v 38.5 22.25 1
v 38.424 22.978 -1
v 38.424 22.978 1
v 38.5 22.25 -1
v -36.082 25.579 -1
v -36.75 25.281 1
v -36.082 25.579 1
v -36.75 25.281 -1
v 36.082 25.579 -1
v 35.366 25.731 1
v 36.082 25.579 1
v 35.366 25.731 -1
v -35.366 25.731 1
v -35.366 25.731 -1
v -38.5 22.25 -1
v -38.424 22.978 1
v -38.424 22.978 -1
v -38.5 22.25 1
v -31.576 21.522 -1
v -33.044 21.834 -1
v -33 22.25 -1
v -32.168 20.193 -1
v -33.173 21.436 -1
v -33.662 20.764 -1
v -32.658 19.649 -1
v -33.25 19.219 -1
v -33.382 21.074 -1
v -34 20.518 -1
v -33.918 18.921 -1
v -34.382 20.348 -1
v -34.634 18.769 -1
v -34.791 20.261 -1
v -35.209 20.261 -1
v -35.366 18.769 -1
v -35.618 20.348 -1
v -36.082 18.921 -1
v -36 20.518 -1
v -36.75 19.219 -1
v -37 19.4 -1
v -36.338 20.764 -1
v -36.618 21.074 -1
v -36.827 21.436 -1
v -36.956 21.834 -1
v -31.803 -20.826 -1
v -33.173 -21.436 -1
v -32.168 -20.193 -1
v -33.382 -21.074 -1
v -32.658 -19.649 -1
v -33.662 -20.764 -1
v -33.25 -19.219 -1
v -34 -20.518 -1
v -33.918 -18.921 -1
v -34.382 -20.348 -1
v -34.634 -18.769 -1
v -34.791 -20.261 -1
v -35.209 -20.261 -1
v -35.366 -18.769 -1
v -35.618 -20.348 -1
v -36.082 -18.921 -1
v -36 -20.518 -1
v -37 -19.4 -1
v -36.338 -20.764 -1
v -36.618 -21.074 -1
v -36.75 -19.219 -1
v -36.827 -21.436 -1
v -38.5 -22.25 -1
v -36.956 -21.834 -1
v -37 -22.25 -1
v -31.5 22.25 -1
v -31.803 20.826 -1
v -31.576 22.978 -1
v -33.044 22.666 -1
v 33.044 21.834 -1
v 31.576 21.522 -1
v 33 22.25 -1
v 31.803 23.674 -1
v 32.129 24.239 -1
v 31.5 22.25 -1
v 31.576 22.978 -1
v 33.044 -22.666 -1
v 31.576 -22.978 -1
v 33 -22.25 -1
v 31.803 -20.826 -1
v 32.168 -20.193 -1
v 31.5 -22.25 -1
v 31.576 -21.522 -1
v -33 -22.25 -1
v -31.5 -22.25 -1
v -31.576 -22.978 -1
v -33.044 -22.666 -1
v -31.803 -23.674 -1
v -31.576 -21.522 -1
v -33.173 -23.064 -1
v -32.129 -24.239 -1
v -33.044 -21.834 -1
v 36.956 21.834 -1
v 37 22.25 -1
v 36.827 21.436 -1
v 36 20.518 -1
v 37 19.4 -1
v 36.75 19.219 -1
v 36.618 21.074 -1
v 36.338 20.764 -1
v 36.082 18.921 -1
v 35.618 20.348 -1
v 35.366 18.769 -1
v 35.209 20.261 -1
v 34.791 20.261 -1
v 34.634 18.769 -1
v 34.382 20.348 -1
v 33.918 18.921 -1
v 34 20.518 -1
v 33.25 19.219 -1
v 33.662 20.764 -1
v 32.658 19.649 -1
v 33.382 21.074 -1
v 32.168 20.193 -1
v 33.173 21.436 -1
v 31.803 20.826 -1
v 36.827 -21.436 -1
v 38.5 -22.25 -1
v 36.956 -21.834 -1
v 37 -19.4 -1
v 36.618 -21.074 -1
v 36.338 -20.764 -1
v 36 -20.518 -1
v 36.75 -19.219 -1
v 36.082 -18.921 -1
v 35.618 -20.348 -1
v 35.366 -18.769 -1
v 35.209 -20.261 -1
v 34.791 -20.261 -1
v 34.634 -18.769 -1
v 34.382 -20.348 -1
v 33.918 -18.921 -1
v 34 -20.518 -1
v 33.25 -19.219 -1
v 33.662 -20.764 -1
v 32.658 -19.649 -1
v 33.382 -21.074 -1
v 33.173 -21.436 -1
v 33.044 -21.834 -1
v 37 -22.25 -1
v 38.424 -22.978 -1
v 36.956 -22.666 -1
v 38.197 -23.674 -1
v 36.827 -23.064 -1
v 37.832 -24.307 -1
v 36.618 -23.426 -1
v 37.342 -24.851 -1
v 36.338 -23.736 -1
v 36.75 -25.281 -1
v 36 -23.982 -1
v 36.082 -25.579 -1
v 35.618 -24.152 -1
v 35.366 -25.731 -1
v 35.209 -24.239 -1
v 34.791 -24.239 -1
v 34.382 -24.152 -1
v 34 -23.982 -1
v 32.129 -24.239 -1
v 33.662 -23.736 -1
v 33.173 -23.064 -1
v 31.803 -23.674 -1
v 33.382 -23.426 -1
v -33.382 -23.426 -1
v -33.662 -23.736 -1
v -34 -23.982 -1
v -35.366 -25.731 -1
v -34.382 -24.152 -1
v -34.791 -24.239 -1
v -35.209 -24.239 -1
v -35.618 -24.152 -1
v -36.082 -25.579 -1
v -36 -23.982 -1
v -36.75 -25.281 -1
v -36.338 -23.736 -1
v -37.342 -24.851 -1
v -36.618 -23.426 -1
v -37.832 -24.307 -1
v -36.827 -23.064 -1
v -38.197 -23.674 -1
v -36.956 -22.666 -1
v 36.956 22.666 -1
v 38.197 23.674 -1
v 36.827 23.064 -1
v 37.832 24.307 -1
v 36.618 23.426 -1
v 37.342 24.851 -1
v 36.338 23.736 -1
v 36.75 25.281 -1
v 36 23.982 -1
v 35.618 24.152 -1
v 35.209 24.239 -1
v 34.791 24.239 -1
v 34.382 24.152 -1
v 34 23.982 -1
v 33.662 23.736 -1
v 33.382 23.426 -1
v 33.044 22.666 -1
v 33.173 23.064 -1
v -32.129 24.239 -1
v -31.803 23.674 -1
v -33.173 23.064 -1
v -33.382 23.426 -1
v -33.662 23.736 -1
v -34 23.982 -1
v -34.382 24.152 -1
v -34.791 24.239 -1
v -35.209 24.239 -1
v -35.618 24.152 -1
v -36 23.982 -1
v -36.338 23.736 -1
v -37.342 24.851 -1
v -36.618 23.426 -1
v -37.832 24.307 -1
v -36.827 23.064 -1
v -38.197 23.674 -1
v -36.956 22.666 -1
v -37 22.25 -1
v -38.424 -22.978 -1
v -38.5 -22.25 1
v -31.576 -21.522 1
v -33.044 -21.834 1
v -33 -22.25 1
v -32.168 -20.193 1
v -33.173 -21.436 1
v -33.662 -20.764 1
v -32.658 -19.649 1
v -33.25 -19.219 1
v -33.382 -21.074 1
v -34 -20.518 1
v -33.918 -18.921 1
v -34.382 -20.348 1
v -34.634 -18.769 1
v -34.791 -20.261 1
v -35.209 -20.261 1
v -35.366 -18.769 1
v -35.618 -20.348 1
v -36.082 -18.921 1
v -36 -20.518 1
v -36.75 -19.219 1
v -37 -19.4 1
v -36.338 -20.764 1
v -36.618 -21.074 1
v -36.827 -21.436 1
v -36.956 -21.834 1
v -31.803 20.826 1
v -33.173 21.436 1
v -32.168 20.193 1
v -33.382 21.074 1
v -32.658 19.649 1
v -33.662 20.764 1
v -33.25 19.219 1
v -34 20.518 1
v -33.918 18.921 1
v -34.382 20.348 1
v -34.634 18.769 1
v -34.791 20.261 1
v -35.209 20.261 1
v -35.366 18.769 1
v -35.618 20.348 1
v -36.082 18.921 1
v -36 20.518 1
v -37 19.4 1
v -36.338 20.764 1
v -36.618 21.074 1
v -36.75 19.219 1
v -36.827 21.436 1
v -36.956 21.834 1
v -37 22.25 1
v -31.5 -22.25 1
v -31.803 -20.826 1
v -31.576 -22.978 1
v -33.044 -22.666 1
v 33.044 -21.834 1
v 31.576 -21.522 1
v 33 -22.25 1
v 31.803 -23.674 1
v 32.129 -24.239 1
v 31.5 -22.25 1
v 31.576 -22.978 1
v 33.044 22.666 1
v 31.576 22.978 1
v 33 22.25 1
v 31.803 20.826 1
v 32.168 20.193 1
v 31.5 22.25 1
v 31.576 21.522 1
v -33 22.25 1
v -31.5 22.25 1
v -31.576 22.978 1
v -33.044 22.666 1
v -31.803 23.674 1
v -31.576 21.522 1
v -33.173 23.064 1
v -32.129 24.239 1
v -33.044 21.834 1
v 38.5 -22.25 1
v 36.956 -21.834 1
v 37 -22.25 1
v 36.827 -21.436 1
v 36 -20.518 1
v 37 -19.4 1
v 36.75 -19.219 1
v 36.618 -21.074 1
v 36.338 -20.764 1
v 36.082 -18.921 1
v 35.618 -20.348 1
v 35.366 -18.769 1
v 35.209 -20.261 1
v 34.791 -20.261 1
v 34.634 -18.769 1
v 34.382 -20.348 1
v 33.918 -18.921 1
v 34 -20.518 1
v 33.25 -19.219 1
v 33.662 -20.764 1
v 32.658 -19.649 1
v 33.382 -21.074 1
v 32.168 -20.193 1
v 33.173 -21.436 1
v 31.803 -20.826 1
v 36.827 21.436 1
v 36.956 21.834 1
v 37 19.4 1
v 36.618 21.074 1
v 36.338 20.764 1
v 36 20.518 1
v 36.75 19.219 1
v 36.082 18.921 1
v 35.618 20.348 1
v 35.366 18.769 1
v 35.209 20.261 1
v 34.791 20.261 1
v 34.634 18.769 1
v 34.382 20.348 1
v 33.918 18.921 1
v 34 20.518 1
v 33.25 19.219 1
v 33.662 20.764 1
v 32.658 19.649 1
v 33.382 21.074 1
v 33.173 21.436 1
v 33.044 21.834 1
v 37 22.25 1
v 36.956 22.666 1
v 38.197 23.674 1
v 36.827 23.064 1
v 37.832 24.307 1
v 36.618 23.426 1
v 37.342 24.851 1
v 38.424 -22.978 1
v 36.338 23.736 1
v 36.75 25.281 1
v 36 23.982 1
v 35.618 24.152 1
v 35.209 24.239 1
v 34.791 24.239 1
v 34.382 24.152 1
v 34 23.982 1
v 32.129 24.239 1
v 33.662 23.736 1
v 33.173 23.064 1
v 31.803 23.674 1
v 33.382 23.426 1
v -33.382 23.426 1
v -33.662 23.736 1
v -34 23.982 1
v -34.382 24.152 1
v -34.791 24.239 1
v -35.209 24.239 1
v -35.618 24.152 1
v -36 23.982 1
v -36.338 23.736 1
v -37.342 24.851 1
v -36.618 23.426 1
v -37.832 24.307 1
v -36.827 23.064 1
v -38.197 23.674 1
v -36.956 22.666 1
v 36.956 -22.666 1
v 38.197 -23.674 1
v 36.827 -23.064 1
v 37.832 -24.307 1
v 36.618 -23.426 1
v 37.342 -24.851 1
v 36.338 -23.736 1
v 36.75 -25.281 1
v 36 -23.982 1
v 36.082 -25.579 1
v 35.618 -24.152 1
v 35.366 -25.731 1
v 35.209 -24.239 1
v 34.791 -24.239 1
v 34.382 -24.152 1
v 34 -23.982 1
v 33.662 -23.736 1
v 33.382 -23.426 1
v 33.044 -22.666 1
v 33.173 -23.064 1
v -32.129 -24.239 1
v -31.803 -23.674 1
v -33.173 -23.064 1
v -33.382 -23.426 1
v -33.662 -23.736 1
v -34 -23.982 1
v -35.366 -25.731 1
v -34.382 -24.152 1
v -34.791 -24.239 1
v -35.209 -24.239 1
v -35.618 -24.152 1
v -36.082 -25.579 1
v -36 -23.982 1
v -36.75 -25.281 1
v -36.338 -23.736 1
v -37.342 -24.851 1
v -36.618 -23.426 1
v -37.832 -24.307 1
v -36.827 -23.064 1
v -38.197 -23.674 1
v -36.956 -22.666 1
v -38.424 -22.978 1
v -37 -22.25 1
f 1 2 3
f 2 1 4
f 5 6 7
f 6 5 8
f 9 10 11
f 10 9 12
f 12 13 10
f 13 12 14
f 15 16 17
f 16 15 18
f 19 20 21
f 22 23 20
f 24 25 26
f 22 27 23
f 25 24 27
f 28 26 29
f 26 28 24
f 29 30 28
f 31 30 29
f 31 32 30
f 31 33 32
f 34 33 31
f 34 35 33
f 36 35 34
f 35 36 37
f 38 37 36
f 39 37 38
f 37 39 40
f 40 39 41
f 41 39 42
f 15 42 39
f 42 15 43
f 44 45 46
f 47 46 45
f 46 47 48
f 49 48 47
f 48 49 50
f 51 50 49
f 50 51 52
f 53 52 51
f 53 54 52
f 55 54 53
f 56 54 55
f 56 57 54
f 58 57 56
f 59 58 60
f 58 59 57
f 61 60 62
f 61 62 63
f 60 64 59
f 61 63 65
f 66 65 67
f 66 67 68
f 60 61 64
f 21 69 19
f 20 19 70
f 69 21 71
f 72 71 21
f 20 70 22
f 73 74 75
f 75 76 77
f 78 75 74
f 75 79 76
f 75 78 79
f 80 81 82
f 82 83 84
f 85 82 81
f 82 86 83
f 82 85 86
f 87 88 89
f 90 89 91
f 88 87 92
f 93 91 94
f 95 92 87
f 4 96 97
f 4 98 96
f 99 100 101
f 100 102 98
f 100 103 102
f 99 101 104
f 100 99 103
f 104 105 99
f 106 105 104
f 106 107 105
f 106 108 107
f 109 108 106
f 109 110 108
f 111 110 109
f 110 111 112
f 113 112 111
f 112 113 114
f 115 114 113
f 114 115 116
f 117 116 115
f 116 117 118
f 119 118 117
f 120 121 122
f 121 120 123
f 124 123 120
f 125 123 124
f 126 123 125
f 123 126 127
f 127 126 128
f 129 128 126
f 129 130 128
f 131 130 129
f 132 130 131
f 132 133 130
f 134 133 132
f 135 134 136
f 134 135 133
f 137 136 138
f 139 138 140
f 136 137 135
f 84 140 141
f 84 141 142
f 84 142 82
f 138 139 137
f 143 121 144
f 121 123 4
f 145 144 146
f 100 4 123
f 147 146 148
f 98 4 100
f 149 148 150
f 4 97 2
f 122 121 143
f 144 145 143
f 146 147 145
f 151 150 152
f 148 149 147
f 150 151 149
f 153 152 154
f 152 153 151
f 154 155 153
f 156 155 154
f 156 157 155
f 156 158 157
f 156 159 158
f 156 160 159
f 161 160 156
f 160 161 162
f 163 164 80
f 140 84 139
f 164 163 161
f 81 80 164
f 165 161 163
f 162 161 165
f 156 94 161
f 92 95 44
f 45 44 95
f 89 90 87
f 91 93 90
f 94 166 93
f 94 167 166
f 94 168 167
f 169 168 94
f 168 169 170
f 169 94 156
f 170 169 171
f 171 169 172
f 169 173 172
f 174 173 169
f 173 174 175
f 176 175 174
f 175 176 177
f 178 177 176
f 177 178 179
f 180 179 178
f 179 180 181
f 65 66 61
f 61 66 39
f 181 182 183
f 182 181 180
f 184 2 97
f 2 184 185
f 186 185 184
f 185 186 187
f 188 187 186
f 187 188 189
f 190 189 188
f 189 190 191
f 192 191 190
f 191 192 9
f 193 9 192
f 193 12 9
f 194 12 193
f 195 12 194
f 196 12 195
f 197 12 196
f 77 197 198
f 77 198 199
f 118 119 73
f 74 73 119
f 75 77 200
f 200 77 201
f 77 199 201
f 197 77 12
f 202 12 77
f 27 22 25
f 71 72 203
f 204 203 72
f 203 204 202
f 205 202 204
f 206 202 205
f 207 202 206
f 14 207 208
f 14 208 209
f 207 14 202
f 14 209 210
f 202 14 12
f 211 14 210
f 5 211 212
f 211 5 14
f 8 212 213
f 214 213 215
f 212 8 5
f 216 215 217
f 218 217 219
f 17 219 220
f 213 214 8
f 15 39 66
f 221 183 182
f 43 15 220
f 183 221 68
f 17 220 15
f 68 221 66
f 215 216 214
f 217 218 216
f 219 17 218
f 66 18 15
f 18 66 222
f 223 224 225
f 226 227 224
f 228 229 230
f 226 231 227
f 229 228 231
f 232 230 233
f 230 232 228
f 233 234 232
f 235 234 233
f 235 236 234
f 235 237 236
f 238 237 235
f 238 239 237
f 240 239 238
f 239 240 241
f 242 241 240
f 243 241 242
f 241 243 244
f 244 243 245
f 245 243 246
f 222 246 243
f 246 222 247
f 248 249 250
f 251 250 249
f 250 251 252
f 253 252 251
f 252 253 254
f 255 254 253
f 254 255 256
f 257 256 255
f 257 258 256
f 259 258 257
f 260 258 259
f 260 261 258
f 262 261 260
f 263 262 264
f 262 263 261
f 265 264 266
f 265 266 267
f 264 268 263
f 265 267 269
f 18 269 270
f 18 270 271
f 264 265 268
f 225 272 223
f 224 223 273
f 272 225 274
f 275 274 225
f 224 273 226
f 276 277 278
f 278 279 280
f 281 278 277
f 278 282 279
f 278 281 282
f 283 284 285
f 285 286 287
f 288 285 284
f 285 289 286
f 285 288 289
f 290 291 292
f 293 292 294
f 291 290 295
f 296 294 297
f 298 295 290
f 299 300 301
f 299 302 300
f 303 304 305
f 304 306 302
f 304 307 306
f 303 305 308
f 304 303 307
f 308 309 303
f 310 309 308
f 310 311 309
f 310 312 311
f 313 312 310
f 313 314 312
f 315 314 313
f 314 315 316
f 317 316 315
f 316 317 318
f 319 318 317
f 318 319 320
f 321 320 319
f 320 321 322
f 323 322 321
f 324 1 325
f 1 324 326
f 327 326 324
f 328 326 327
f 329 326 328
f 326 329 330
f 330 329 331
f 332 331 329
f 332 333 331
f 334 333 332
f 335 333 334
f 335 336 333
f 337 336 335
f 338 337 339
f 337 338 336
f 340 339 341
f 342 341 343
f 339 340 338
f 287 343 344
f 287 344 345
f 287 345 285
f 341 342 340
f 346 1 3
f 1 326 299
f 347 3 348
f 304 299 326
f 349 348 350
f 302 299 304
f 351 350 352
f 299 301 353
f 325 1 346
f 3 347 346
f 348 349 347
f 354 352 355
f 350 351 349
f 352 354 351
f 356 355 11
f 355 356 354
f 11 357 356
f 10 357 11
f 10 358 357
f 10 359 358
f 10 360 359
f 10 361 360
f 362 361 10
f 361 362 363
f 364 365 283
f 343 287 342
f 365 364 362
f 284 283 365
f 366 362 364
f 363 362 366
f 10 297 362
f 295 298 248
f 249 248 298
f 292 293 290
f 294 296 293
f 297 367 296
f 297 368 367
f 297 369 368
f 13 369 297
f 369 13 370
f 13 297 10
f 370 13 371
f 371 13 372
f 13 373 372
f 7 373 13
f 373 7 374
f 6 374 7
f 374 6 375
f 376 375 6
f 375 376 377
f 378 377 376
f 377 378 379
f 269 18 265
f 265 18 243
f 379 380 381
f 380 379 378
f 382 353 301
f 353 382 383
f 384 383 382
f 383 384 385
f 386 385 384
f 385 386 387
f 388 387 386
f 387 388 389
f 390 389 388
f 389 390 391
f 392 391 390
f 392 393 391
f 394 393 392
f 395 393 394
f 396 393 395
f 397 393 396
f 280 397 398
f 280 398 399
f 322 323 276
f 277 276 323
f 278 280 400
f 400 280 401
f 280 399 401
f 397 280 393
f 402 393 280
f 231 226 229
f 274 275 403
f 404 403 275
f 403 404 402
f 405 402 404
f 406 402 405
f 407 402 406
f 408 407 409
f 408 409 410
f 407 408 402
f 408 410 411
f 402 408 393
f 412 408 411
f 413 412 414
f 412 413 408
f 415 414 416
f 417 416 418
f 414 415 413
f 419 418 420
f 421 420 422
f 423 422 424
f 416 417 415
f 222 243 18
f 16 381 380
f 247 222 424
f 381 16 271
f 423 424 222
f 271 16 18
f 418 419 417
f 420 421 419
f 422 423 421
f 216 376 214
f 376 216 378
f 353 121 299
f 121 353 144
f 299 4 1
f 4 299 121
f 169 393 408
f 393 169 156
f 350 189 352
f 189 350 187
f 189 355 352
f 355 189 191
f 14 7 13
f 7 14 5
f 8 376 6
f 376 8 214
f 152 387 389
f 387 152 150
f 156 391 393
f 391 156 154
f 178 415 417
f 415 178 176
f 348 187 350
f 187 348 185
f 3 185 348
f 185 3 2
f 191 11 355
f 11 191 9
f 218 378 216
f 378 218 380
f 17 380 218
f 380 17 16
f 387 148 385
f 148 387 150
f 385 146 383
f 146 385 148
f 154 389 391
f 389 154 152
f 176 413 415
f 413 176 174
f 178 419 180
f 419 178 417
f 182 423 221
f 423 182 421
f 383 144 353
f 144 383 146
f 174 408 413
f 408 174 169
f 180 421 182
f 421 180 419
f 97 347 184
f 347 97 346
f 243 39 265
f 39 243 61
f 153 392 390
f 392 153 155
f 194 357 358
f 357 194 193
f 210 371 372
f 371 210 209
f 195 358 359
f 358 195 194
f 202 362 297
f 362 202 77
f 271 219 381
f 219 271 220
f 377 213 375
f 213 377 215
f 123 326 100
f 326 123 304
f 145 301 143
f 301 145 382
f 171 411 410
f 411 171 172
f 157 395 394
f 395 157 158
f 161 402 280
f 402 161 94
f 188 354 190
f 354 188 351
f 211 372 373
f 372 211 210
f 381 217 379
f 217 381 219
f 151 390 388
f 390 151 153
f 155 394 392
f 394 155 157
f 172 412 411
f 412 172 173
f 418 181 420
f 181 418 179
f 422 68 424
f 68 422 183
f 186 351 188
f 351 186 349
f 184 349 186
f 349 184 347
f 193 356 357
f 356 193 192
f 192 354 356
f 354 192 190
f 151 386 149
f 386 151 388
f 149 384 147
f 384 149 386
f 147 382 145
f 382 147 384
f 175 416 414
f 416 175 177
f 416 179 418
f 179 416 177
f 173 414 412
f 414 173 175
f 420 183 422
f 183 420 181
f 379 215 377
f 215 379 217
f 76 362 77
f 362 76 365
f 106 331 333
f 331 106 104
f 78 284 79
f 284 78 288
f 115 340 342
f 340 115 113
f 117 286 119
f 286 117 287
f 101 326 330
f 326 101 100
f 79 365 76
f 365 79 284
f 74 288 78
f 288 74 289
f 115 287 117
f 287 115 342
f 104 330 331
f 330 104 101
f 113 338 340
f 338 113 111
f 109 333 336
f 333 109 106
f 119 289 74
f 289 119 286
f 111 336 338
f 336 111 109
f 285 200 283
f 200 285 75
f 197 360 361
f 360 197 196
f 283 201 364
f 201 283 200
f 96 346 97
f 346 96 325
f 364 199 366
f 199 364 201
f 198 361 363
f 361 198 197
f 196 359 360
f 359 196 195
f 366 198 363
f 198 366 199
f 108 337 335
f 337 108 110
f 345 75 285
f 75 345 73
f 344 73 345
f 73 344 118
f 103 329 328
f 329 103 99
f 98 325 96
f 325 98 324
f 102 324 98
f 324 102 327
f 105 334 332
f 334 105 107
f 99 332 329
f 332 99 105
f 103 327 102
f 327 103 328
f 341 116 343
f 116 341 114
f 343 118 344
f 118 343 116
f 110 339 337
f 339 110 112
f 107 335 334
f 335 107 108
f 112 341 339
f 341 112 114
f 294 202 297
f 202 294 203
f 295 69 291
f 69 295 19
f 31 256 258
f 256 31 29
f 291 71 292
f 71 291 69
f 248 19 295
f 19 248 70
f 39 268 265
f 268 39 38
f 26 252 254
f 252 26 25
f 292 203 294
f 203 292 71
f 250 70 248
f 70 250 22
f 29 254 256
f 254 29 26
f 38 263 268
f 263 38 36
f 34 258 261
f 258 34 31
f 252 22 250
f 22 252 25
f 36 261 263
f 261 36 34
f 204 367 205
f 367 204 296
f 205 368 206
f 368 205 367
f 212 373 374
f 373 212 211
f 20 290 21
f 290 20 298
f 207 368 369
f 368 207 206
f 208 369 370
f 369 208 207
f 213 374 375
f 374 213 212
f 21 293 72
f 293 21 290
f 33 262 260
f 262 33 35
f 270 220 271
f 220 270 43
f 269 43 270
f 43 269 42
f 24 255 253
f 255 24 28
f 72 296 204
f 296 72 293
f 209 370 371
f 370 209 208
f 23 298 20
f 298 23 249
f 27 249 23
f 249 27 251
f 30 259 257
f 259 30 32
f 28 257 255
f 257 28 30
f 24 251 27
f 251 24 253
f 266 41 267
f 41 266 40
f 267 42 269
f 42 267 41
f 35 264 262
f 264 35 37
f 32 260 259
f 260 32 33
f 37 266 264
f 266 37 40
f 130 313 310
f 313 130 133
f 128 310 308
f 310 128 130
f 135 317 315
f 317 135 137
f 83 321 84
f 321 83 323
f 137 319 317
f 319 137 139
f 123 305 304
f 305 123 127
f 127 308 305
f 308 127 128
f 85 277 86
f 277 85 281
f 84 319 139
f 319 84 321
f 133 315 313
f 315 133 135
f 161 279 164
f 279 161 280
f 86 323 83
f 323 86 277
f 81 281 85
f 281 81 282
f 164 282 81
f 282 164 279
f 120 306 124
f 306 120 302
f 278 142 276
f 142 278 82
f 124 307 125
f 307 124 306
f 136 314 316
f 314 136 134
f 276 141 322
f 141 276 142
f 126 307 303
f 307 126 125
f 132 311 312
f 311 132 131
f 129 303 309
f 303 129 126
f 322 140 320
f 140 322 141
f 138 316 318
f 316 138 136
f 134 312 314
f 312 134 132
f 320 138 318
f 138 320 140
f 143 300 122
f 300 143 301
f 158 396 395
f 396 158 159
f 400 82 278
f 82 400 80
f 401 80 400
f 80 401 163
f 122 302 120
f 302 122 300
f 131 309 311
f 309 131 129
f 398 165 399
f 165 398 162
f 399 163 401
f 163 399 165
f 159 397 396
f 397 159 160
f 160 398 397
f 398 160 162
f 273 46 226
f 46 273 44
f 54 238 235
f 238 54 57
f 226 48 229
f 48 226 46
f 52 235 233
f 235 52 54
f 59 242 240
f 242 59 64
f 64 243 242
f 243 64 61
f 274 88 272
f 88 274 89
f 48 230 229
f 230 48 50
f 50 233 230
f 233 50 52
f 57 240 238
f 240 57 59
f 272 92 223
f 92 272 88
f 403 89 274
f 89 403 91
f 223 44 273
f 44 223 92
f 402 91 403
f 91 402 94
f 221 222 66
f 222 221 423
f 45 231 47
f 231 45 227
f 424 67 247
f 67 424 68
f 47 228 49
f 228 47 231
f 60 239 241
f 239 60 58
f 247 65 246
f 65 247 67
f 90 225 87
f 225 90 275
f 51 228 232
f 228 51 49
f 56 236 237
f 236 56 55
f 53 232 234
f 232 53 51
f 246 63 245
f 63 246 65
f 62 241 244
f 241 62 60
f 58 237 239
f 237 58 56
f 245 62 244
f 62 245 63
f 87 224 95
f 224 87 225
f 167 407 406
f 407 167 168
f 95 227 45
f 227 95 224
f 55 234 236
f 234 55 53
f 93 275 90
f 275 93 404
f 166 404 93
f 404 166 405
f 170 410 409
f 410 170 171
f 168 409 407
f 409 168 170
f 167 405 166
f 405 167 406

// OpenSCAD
$fn = 30;

/* 
This is for the Parallax QickStart Dev Board

Borad size

Width		76mm
Depth	52mm

Holes are 3mm wide

Holes on center

Width		70mm
Depth	44.5 mm


*/

boardWidth = 77;
boardDepth = 51.5;

holeSpaceWidth = 70;
holeSpaceDepth = 44.5;

borderWidth = 3;

spacerHeigth = 2;
screwHoleSize = 4;


//%cube([76, 52, 2], center=true); // Board 

difference(){
	plate4Point(boardWidth, boardDepth, spacerHeigth, screwHoleSize+borderWidth);
	plate4Point(boardWidth - borderWidth, boardDepth-borderWidth, spacerHeigth+1, screwHoleSize);
}

screwHoles();

module screwHoles(){

	translate([(boardWidth/2)-borderWidth-.5, (boardDepth/2)-borderWidth-.5, 0]) screwBorder(spacerHeigth); // Top Left
	translate([-(boardWidth/2)+borderWidth+.5, (boardDepth/2)-borderWidth-.5, 0]) screwBorder(spacerHeigth); // Top Right
	translate([(boardWidth/2)-borderWidth-.5, -(boardDepth/2)+borderWidth+.5, 0]) screwBorder(spacerHeigth); // Botton Left
	translate([-(boardWidth/2)+borderWidth+.5, -(boardDepth/2)+borderWidth+.5, 0]) screwBorder(spacerHeigth); // Bottom Right

}

module screwBorder(h){

	difference(){
		cylinder(h = h, d = borderWidth+screwHoleSize, center = true);
		cylinder(h = h + 1, d = screwHoleSize, center = true);
	}

}

module plate2Point(x,z,d){
	hull(){
		color("green") translate([(x/2) -(d/2), 0, 0]) cylinder(h=z, d=d, center=true);
		color("blue")  translate([-(x/2)+(d/2), 0, 0]) cylinder(h=z, d=d, center=true);
	}
}

module plate4Point(x,y,z,d){
	hull(){
		color("green") translate([(x/2)-(d/2) ,(y/2) -(d/2),0]) cylinder(h=z, d=d, center=true);
		color("blue")  translate([(x/2)-(d/2) ,-(y/2)+(d/2),0]) cylinder(h=z, d=d, center=true);
		color("red")   translate([-(x/2)+(d/2),(y/2) -(d/2),0]) cylinder(h=z, d=d, center=true);
		color("grey")  translate([-(x/2)+(d/2),-(y/2)+(d/2),0]) cylinder(h=z, d=d, center=true);
	}
}
